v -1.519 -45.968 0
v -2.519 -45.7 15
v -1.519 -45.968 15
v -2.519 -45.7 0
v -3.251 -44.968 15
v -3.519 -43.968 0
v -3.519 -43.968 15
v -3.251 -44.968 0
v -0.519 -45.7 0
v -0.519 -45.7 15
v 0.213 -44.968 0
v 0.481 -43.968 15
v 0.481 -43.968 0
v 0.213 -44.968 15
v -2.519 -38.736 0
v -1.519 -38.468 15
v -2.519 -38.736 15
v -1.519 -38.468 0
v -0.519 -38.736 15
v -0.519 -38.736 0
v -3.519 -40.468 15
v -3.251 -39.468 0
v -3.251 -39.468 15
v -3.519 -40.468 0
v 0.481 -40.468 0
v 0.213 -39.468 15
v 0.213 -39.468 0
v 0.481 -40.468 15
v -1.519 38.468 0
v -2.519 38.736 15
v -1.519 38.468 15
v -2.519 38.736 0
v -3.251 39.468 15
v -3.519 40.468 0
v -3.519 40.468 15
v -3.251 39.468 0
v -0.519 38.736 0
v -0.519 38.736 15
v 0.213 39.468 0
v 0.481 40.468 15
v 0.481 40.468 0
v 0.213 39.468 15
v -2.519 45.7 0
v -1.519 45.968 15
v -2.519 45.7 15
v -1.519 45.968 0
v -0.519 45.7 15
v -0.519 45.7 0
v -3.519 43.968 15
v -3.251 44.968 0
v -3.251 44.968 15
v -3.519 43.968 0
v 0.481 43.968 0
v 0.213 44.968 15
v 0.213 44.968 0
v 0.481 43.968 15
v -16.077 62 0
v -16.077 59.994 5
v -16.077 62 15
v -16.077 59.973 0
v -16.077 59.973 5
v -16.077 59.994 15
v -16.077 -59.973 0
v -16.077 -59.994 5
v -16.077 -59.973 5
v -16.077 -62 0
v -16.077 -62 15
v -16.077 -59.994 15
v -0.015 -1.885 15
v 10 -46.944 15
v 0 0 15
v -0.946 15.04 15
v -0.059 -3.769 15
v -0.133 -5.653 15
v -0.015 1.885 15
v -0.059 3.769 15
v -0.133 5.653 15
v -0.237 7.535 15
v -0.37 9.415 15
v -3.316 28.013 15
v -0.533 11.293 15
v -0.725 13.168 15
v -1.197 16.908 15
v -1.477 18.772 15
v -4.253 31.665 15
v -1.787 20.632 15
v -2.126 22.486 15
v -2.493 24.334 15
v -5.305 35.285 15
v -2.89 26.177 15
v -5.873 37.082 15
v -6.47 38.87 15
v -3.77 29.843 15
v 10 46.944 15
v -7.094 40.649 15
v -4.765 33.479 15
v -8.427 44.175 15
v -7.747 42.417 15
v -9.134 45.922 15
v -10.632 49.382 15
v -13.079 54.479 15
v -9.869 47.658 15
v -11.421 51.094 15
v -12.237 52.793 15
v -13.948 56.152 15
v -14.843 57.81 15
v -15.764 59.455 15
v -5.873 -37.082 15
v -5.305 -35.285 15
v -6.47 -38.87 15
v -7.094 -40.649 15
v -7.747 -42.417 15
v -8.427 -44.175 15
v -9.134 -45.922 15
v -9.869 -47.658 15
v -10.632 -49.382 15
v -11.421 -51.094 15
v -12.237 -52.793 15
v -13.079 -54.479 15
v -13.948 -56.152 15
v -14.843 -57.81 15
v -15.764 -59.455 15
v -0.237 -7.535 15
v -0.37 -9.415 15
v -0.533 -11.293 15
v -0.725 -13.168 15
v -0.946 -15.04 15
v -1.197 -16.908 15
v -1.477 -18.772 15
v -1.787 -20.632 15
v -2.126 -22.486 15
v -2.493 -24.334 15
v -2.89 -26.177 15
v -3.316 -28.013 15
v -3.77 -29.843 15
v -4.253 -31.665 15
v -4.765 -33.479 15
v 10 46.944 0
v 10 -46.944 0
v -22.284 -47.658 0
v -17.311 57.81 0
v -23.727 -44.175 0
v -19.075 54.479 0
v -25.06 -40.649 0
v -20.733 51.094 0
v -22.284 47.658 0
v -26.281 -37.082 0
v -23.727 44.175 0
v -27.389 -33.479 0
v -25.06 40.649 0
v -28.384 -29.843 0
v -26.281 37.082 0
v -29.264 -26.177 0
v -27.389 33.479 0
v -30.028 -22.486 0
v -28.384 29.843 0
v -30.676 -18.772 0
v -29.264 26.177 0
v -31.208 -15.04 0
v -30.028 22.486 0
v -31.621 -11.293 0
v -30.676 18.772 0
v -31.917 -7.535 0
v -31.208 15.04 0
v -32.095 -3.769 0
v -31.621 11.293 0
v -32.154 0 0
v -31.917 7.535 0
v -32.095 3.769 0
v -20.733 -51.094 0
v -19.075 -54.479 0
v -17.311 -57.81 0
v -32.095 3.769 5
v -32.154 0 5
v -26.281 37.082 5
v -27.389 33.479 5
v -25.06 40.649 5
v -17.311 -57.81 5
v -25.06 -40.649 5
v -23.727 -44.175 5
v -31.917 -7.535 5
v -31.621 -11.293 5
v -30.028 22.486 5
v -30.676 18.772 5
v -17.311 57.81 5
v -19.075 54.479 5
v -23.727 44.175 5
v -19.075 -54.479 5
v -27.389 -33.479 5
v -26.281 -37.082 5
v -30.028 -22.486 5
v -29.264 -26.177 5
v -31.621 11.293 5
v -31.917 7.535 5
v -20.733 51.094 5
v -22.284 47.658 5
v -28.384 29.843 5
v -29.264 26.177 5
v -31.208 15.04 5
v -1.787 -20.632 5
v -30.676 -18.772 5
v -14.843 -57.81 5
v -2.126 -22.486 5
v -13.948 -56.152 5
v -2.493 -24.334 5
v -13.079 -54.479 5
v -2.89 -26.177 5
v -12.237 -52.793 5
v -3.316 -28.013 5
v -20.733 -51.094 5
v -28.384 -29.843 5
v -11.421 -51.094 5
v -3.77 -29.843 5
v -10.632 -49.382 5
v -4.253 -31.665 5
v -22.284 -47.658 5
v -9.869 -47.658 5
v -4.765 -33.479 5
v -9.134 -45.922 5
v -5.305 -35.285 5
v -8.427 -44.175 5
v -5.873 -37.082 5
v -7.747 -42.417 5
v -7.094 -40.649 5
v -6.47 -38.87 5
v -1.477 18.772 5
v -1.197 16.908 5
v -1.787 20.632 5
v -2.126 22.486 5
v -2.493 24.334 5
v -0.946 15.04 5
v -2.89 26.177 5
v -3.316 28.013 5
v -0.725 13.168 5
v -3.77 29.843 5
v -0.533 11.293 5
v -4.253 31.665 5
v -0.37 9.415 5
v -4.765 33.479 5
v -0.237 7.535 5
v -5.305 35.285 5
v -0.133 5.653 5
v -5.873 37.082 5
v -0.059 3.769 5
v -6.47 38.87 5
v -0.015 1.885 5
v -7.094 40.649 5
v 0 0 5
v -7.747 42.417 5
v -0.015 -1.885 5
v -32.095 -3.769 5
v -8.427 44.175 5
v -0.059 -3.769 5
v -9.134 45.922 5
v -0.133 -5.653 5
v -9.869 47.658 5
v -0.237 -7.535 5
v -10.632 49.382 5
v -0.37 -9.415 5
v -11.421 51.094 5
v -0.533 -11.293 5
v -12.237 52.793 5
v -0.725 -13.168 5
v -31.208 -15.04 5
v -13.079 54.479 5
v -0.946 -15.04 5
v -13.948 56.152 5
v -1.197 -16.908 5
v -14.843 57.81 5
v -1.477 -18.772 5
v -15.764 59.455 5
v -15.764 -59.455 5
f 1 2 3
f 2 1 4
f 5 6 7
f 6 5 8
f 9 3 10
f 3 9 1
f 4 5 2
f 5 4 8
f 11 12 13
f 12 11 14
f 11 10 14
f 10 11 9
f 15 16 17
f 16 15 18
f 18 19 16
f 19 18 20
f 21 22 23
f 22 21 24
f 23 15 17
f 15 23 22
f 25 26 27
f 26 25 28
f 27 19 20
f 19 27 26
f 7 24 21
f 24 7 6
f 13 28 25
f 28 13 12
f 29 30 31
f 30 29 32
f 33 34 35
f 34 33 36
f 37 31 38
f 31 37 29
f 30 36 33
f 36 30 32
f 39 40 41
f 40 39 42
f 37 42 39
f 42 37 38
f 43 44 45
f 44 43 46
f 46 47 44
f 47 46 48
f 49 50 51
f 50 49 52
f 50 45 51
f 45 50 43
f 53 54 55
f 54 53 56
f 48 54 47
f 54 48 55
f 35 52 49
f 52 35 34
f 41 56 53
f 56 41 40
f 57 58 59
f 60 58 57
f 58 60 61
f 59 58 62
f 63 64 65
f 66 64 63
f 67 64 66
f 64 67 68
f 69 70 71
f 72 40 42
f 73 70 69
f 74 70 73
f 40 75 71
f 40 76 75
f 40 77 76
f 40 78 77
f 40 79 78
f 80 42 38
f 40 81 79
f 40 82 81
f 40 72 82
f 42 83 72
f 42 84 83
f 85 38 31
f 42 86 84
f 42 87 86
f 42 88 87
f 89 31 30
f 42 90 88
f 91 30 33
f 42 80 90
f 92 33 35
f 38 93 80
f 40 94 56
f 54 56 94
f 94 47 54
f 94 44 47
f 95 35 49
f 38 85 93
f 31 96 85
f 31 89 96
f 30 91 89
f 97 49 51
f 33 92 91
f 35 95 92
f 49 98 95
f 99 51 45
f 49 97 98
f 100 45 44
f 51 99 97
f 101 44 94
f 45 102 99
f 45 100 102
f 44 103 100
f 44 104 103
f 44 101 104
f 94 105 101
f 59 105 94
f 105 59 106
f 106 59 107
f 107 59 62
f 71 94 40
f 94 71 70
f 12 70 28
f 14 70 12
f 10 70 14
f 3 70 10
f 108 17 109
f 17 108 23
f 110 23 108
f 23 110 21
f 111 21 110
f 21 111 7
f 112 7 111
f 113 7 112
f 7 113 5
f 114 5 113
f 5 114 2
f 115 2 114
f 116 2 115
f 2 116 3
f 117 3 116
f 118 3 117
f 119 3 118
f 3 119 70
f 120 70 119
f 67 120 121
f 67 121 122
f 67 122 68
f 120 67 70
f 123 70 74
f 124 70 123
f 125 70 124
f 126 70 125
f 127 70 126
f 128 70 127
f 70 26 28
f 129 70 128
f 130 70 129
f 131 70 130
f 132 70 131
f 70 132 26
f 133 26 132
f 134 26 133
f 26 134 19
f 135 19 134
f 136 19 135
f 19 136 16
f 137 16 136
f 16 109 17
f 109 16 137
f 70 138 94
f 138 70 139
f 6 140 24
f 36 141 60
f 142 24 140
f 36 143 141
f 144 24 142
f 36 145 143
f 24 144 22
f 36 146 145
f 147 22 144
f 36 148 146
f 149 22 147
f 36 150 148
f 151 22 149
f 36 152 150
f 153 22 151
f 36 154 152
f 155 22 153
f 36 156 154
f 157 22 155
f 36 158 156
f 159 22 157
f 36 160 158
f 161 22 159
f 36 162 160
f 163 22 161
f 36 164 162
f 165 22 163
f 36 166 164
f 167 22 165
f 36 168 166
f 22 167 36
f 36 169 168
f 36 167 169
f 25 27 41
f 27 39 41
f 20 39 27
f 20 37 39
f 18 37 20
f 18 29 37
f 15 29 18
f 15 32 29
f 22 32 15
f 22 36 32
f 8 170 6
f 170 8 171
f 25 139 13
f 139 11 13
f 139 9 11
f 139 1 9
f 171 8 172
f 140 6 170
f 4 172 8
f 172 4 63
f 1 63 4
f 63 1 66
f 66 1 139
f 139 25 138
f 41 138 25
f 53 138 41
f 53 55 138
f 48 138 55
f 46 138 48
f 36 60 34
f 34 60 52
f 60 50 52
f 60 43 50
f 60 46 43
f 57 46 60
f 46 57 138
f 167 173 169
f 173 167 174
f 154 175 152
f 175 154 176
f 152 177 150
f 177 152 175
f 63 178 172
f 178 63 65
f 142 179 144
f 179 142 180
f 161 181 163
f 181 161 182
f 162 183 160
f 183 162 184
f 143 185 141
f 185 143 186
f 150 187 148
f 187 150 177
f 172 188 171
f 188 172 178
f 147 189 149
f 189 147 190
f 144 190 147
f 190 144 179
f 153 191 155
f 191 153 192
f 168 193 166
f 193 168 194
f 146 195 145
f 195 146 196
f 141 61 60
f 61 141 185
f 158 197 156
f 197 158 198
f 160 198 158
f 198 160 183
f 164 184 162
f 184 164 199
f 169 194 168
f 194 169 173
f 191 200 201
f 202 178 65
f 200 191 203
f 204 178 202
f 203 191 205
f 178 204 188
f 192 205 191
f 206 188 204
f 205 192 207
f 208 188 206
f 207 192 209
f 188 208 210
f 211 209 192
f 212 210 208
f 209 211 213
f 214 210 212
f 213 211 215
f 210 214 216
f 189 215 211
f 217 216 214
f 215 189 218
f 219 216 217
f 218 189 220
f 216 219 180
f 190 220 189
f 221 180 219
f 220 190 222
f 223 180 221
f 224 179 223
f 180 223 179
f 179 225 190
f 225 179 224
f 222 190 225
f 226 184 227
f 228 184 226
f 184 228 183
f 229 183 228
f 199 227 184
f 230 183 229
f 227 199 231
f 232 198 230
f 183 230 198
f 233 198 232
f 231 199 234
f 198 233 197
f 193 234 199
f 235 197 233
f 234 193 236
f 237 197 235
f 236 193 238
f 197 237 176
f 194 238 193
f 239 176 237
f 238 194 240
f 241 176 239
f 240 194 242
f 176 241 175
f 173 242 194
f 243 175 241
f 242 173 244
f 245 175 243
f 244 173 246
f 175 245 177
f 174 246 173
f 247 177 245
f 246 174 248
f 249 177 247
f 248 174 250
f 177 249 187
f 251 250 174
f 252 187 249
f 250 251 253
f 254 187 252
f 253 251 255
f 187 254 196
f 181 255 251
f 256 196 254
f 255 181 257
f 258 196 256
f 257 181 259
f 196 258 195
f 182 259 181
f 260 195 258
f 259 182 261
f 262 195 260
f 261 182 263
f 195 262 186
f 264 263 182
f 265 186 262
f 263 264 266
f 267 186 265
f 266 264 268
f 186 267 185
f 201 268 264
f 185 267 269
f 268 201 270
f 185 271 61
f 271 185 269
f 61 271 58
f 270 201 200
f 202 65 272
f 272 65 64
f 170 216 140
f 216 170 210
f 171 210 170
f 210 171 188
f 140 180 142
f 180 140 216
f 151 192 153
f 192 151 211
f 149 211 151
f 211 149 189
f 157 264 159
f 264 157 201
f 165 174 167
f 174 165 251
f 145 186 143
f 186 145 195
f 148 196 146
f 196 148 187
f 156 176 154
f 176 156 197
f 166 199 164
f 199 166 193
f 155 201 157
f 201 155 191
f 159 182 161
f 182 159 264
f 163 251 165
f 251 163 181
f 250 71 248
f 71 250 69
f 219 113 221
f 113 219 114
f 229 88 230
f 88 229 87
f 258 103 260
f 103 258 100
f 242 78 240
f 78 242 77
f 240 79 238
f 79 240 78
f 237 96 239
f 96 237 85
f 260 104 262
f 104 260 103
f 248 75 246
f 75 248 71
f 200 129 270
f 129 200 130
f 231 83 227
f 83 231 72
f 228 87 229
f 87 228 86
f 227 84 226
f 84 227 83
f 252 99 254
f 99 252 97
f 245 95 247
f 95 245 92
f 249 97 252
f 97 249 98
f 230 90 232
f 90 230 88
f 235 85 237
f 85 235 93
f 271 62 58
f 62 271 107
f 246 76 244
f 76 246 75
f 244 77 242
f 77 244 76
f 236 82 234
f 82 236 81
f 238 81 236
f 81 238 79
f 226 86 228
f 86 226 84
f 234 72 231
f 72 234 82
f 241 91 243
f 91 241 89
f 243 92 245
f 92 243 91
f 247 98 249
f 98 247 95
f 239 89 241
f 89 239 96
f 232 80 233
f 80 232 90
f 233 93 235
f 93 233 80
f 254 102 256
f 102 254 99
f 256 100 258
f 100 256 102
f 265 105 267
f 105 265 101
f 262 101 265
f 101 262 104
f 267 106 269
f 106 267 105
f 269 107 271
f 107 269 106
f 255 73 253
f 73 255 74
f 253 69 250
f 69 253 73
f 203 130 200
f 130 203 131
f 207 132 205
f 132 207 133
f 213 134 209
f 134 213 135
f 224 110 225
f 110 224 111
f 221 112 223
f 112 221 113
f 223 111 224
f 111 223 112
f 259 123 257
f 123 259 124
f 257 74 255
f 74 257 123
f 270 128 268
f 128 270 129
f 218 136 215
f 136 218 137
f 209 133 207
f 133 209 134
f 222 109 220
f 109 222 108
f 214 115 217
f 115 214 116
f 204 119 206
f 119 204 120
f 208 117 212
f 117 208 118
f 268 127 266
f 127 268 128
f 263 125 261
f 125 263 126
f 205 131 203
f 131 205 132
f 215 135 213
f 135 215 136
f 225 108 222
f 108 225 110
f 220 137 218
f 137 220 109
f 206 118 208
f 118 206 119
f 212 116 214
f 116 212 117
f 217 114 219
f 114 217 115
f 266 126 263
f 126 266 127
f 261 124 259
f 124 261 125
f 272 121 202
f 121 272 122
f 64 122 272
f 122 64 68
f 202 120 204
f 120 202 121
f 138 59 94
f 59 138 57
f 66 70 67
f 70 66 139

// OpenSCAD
// parametric bed retainer and FSR mount for delta printer,
// mounts at the three corners of the frame

// set values
mount_width = 10;
retainer_height = 10;
fsr_mount_thickness = 5;
screw_width = 3;
slot_width = 6;

//measured values
// bed_radius = 120;
bed_radius = 120;
// beam_length = 270;
beam_length = 270;
beam_width = 15;
beam_height = 15;
fsr_width = 20;
// bracket_offset: using two steel rulers, measure the distance from the end
// of the beam to the point where its outside edge would meet that of its neighbor 
// bracket_offset = 48;
bracket_offset = 48;

//calculated values
frame_side = beam_length + 2*bracket_offset;
slug_offset = bed_radius*sqrt(3)/2;
slug_width = bed_radius - bed_radius*sqrt(3)/2 + mount_width;
triangle_radius = bed_radius/sqrt(3);
frame_radius = frame_side/sqrt(3);

rotate([0,0,0])
translate([-bed_radius,0,0])
union(){

// for debug, show frame (set to true to show or false to hide)
// frame is idealized, ignores end bracket truncation
show_frame = false;
if (show_frame) {
    difference() {
        translate([0,0,-beam_height])
        // a cylinder with three faces is an equilateral triangle! Who knew!
            cylinder(r = frame_radius, h = beam_height, $fn = 3);
        translate([0,0,-beam_height-1])
            cylinder(r = frame_radius-2*beam_width, h = beam_height+2, $fn = 3);
    }
}


// mount body

intersection()  {
    translate([0,0,0])
            cylinder(r = frame_side/sqrt(3), h = retainer_height+fsr_mount_thickness, $fn = 3);
    difference() {
    union() {
        // "slug"
        translate([slug_offset,-frame_side/2,0])
            cube([slug_width,frame_side,retainer_height+fsr_mount_thickness]);
        translate([2*bed_radius*sqrt(3)/2,0,0])
                cylinder(r=bed_radius,h=fsr_mount_thickness, $fn=200);
}
        // remove bed
        translate([0,0,fsr_mount_thickness])
            cylinder(r=bed_radius,h=2*(retainer_height+fsr_mount_thickness), $fn=400);
        // remove back side
        translate([bed_radius + mount_width,-bed_radius/2,-retainer_height/2])
            cube([bed_radius,bed_radius,2*(retainer_height+fsr_mount_thickness)]);
        // remove screw sliders
        // faking it on the width-wise position of the screw slots
        // this is midway between the middle of the mount body and the edge of the bed
        xo = -(slug_offset + slug_width/2 + bed_radius)/2;
        hy = (frame_radius - bed_radius)/sqrt(3) - beam_width/2 - slot_width/2;
        for (yo = [-hy, hy])    {
            translate([-xo,yo,-1])
                rotate([0,0,90])
                    slotted_hole(r=(screw_width+1)/2, l=beam_width/2, h=retainer_height+fsr_mount_thickness+2);
                                }
                }
                }
        
}


module slotted_hole(r, l, h) {
    d = l/2-r;
    union(){
        for (os = [-d, d]) {
            translate([os,0,0])
                cylinder(r=r, h=h, $fn=12);
        }
        translate([-d,-r,0])
            cube([l-2*r,2*r,h]);
    }
}
